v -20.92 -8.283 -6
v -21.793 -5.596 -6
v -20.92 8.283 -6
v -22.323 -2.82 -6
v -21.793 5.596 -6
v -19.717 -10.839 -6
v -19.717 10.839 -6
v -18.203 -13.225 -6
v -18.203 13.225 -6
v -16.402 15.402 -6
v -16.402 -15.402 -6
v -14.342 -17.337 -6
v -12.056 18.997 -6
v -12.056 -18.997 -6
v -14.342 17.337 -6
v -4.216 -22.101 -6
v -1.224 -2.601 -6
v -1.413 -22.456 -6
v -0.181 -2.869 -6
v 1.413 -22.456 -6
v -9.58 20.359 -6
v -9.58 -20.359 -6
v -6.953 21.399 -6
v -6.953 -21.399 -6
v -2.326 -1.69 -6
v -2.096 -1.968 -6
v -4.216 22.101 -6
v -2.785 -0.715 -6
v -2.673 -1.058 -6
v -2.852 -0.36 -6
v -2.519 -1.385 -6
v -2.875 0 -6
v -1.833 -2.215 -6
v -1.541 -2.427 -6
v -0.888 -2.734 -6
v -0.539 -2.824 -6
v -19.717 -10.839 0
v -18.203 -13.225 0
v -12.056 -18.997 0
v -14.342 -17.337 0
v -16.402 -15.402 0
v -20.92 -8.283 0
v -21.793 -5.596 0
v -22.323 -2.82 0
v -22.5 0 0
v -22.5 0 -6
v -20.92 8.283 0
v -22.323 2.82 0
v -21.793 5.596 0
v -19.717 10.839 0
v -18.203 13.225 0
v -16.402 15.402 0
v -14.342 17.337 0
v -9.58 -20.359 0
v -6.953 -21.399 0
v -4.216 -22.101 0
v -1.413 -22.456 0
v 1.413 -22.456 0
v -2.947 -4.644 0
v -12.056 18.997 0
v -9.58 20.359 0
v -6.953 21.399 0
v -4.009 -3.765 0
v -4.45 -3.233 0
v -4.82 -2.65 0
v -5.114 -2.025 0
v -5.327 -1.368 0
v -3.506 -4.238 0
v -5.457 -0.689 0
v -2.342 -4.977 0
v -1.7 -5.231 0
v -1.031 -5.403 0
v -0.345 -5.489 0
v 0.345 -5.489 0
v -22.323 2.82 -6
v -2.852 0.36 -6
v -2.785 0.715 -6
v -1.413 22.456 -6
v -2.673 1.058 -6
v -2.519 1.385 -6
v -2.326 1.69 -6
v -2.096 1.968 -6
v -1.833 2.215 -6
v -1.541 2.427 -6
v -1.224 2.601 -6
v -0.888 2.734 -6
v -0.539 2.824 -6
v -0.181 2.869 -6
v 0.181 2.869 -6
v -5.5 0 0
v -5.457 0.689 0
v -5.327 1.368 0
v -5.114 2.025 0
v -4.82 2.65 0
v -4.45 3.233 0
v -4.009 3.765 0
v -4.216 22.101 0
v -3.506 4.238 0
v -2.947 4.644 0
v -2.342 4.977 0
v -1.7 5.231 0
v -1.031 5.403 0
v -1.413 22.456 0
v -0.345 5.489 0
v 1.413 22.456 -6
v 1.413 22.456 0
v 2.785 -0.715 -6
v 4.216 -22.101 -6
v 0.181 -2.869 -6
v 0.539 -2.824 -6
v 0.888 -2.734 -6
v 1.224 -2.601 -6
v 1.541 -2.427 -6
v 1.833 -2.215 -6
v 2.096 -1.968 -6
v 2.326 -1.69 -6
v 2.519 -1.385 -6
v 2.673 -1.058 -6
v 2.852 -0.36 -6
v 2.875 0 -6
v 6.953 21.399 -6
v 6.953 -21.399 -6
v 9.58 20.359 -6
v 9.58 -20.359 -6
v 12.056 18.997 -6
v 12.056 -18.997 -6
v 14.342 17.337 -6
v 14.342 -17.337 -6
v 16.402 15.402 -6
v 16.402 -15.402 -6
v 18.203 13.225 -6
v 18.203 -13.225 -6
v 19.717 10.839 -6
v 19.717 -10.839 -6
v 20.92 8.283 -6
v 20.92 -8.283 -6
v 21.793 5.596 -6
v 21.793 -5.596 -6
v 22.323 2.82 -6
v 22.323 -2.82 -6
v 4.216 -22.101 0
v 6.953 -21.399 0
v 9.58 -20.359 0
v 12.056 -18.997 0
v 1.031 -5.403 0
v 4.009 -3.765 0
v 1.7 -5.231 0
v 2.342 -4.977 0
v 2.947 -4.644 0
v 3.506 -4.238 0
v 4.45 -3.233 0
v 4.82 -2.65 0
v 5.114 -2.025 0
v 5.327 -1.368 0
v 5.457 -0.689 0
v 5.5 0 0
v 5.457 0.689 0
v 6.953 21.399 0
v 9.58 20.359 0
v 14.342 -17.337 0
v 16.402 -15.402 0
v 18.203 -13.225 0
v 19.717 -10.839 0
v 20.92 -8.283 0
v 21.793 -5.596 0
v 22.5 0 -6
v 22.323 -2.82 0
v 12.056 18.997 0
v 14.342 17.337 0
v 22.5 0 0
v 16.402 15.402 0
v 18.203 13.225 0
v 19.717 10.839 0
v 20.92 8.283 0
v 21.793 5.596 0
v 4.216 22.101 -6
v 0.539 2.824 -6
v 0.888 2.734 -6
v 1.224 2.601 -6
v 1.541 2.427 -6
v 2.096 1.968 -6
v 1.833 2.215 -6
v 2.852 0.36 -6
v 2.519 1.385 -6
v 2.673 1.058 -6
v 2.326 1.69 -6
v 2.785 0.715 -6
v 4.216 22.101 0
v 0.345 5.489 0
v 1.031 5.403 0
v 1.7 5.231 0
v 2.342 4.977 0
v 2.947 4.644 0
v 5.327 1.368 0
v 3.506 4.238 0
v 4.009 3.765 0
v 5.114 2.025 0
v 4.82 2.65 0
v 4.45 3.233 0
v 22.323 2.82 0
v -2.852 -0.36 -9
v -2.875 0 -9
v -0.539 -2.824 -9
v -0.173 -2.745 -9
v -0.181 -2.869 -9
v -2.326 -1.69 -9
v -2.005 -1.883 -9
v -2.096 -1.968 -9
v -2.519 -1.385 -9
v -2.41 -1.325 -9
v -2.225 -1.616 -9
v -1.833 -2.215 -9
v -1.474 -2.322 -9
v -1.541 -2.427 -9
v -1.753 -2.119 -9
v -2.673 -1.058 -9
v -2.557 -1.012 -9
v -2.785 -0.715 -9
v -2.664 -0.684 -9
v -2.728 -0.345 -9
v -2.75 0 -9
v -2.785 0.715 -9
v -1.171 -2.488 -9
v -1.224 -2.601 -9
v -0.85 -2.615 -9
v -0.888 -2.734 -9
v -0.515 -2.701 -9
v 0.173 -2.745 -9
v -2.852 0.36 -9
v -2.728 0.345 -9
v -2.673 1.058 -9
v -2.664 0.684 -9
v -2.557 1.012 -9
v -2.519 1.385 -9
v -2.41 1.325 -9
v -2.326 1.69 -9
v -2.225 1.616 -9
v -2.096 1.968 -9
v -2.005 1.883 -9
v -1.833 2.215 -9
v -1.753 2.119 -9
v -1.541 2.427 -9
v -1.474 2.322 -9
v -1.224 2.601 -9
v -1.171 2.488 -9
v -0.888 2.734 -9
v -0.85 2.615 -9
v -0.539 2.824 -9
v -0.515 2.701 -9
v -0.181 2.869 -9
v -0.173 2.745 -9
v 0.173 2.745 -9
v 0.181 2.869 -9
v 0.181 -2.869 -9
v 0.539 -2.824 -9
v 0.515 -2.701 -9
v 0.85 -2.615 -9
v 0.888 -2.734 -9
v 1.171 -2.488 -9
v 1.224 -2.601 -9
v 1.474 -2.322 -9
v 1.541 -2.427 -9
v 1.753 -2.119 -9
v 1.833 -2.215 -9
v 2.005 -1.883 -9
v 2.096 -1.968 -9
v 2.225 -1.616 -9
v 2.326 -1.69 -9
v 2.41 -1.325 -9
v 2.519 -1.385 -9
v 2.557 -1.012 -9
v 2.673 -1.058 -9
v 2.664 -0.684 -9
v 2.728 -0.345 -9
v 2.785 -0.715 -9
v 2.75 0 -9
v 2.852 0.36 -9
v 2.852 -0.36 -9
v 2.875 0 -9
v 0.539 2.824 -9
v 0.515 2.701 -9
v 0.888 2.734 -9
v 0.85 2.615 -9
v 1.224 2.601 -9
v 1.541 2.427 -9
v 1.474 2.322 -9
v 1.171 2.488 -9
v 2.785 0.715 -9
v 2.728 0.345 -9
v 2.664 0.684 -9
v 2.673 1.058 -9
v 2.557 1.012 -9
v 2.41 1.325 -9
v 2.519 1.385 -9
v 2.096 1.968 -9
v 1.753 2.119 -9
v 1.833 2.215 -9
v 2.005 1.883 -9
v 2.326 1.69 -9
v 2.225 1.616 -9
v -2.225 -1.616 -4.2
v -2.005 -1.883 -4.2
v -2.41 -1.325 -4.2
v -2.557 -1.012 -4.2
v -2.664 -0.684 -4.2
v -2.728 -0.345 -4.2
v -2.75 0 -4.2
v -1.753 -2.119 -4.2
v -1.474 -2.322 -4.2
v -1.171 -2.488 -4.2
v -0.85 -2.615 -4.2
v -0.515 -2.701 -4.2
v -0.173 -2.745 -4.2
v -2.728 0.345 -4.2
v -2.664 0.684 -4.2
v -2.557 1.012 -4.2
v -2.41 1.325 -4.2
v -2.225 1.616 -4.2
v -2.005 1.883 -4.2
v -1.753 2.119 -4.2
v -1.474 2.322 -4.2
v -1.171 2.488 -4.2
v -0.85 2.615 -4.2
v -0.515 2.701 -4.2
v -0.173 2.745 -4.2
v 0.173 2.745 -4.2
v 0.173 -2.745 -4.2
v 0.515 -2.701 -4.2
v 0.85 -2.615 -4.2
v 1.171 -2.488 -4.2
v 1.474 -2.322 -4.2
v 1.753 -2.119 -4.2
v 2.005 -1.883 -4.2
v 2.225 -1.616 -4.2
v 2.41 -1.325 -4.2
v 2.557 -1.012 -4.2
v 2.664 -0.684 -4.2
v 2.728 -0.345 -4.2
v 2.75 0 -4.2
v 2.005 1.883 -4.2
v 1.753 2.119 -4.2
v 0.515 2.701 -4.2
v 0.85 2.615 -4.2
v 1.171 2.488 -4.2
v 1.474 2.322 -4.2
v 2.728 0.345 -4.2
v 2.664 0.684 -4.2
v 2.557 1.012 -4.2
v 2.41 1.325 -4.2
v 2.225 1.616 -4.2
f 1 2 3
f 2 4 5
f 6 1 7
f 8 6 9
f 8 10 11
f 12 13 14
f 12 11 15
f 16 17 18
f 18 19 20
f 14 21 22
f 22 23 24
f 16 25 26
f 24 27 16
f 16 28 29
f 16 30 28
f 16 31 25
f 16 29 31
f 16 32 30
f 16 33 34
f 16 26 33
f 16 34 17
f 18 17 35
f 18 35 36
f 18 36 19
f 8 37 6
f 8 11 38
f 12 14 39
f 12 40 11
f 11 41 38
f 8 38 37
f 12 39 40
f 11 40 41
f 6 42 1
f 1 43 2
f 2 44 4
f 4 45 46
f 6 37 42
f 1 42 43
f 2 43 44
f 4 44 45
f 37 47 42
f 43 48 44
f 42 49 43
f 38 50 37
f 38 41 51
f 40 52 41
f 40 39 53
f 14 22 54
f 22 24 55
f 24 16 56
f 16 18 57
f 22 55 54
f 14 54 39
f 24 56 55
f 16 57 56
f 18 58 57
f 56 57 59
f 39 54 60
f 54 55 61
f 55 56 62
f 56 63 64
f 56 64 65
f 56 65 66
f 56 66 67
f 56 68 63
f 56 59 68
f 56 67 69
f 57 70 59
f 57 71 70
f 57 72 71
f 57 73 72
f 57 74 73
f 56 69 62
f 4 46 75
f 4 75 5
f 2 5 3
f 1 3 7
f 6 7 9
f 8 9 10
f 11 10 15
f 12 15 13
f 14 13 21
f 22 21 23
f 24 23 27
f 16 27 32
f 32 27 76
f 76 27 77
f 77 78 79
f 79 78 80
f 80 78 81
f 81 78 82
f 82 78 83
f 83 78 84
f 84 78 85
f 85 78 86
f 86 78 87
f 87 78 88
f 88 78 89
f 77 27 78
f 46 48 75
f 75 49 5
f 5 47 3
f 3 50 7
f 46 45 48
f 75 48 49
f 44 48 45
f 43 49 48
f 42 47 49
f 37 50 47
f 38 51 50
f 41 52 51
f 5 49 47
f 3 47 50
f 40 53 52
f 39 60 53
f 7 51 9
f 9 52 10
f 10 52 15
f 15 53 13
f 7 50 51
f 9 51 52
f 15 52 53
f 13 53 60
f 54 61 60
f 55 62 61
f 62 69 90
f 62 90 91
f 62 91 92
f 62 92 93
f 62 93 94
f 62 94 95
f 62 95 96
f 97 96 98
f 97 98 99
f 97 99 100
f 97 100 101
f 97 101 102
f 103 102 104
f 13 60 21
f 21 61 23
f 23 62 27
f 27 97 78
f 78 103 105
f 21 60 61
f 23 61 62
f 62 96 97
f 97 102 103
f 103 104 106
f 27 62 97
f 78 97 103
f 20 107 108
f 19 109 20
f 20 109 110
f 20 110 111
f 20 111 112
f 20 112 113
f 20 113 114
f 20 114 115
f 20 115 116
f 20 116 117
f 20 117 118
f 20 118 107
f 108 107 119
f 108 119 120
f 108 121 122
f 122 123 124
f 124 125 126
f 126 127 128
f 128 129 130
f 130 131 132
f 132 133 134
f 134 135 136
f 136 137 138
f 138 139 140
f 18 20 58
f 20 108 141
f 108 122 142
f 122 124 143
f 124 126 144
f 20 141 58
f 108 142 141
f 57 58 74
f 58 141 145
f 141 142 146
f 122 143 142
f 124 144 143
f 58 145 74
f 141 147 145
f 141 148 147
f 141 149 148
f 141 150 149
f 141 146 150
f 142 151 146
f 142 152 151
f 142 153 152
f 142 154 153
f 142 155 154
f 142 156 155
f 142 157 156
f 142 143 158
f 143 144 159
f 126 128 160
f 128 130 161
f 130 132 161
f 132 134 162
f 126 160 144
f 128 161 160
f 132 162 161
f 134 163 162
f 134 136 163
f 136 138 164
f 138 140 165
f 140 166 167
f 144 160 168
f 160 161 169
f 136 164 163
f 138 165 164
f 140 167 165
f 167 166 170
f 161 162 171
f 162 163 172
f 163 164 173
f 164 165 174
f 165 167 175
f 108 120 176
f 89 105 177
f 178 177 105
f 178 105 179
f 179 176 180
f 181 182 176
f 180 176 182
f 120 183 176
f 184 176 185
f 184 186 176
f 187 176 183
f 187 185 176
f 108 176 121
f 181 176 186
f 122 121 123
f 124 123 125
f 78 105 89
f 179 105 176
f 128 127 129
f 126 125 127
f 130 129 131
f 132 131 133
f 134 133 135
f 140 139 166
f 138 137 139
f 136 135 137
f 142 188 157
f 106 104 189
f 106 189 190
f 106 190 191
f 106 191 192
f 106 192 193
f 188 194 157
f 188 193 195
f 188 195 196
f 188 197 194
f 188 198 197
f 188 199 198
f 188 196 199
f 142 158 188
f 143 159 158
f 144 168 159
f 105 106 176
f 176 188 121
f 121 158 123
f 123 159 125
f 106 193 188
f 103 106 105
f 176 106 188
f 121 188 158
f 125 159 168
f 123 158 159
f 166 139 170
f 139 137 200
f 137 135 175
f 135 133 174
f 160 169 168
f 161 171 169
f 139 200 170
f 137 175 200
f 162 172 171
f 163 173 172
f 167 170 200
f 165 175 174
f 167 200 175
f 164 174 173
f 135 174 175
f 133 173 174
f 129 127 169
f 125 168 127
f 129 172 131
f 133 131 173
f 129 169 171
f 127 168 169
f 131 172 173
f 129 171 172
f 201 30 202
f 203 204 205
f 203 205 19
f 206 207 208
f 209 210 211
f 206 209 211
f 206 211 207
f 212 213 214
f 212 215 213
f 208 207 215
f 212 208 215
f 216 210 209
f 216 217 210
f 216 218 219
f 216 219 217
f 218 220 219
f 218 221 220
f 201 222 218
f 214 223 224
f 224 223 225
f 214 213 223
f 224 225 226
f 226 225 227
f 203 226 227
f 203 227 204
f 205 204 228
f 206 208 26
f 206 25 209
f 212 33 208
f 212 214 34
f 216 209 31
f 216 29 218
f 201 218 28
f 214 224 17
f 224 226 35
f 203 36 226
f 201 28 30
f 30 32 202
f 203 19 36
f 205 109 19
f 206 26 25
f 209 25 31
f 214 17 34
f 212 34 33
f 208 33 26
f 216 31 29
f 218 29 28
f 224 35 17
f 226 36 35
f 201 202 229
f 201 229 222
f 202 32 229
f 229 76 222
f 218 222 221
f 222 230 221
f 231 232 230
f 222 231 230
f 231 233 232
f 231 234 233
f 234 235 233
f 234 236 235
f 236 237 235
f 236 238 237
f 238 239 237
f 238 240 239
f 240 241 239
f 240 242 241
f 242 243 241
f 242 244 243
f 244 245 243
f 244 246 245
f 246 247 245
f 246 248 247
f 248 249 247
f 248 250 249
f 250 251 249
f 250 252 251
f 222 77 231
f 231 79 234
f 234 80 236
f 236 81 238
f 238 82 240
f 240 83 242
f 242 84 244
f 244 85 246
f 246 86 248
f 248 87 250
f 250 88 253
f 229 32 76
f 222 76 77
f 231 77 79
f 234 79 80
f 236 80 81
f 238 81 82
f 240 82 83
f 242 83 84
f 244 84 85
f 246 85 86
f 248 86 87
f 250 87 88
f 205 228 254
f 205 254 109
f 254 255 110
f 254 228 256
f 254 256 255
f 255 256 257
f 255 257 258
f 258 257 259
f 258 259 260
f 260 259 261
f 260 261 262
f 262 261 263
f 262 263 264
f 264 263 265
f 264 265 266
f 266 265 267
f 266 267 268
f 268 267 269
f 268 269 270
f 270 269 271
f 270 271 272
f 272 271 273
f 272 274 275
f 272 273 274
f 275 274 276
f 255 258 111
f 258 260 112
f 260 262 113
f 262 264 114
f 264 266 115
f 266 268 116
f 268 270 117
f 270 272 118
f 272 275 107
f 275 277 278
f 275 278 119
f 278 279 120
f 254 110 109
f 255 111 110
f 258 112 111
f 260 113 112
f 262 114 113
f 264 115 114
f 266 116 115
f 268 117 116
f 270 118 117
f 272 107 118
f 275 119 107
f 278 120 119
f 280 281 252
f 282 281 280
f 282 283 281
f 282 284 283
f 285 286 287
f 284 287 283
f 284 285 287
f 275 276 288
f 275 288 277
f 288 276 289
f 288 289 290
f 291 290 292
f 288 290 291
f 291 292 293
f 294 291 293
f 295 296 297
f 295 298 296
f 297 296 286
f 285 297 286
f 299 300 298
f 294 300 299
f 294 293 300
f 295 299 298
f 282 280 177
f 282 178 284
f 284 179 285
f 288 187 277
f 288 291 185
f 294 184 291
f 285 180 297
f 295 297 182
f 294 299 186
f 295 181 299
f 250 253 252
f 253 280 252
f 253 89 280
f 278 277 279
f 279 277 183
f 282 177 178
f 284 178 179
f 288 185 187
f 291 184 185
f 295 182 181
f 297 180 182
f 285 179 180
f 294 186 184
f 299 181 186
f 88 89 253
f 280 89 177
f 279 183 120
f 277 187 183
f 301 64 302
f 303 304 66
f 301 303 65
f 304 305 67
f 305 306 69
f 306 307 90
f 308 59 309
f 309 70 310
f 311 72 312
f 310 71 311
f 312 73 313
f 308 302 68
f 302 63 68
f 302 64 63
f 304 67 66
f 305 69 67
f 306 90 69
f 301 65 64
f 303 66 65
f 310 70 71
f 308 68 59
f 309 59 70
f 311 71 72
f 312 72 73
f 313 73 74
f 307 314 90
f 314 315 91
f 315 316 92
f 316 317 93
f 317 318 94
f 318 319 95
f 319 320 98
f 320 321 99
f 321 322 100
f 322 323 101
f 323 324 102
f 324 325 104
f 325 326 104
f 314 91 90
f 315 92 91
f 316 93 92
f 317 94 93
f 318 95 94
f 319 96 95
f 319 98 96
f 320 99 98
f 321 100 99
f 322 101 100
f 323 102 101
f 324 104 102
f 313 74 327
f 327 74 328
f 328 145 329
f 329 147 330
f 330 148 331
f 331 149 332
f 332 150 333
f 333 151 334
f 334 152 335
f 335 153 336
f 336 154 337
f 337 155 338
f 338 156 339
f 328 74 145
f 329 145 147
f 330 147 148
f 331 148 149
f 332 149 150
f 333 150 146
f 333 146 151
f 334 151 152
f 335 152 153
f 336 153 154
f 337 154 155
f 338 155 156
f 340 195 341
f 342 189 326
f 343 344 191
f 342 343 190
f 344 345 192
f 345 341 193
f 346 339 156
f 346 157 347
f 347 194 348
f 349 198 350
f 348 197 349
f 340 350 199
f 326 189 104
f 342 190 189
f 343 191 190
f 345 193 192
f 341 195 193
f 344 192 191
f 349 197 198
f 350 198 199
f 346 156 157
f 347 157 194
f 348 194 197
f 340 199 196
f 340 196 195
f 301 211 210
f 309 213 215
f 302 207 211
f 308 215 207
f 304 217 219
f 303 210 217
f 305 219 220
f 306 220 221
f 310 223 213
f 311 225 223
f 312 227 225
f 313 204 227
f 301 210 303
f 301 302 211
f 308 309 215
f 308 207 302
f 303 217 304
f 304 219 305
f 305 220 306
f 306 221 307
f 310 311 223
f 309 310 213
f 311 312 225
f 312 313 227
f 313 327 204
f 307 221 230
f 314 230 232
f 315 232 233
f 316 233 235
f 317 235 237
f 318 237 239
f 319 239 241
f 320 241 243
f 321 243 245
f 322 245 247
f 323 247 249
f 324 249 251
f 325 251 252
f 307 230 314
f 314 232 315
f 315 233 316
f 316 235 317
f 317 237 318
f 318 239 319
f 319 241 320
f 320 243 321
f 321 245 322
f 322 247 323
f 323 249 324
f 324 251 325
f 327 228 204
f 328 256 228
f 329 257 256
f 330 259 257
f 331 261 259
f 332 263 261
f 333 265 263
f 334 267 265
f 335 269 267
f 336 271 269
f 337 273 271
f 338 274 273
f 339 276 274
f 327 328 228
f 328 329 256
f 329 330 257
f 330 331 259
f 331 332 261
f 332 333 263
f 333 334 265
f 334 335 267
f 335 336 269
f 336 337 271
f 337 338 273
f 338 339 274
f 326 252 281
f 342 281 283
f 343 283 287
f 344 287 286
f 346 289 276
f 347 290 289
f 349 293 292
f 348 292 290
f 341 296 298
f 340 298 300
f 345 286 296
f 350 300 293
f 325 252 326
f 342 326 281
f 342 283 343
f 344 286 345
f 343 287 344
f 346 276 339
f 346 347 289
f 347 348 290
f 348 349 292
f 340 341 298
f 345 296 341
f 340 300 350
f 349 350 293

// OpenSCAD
$fn = 50;

difference() {
	union() {
		translate(v = [0, 0, -6.0]) {
			cylinder(h = 6, r = 22.5);
		}
		#translate(v = [0, 0, -9.0]) {
			cylinder(h = 9, r = 2.875);
		}
	}
	union() {
		translate(v = [0, 0, 0]) {
			rotate(a = [0, 0, 0]) {
				difference() {
					union() {
						translate(v = [0, 0, -9.0]) {
							cylinder(h = 9, r = 2.25);
						}
						translate(v = [0, 0, -4.2]) {
							cylinder(h = 4.2, r1 = 2.75, r2 = 5.5);
						}
						translate(v = [0, 0, -9.0]) {
							cylinder(h = 9, r = 2.75);
						}
						translate(v = [0, 0, -9.0]) {
							cylinder(h = 9, r = 2.25);
						}
					}
					union();
				}
			}
		}
	}
}
